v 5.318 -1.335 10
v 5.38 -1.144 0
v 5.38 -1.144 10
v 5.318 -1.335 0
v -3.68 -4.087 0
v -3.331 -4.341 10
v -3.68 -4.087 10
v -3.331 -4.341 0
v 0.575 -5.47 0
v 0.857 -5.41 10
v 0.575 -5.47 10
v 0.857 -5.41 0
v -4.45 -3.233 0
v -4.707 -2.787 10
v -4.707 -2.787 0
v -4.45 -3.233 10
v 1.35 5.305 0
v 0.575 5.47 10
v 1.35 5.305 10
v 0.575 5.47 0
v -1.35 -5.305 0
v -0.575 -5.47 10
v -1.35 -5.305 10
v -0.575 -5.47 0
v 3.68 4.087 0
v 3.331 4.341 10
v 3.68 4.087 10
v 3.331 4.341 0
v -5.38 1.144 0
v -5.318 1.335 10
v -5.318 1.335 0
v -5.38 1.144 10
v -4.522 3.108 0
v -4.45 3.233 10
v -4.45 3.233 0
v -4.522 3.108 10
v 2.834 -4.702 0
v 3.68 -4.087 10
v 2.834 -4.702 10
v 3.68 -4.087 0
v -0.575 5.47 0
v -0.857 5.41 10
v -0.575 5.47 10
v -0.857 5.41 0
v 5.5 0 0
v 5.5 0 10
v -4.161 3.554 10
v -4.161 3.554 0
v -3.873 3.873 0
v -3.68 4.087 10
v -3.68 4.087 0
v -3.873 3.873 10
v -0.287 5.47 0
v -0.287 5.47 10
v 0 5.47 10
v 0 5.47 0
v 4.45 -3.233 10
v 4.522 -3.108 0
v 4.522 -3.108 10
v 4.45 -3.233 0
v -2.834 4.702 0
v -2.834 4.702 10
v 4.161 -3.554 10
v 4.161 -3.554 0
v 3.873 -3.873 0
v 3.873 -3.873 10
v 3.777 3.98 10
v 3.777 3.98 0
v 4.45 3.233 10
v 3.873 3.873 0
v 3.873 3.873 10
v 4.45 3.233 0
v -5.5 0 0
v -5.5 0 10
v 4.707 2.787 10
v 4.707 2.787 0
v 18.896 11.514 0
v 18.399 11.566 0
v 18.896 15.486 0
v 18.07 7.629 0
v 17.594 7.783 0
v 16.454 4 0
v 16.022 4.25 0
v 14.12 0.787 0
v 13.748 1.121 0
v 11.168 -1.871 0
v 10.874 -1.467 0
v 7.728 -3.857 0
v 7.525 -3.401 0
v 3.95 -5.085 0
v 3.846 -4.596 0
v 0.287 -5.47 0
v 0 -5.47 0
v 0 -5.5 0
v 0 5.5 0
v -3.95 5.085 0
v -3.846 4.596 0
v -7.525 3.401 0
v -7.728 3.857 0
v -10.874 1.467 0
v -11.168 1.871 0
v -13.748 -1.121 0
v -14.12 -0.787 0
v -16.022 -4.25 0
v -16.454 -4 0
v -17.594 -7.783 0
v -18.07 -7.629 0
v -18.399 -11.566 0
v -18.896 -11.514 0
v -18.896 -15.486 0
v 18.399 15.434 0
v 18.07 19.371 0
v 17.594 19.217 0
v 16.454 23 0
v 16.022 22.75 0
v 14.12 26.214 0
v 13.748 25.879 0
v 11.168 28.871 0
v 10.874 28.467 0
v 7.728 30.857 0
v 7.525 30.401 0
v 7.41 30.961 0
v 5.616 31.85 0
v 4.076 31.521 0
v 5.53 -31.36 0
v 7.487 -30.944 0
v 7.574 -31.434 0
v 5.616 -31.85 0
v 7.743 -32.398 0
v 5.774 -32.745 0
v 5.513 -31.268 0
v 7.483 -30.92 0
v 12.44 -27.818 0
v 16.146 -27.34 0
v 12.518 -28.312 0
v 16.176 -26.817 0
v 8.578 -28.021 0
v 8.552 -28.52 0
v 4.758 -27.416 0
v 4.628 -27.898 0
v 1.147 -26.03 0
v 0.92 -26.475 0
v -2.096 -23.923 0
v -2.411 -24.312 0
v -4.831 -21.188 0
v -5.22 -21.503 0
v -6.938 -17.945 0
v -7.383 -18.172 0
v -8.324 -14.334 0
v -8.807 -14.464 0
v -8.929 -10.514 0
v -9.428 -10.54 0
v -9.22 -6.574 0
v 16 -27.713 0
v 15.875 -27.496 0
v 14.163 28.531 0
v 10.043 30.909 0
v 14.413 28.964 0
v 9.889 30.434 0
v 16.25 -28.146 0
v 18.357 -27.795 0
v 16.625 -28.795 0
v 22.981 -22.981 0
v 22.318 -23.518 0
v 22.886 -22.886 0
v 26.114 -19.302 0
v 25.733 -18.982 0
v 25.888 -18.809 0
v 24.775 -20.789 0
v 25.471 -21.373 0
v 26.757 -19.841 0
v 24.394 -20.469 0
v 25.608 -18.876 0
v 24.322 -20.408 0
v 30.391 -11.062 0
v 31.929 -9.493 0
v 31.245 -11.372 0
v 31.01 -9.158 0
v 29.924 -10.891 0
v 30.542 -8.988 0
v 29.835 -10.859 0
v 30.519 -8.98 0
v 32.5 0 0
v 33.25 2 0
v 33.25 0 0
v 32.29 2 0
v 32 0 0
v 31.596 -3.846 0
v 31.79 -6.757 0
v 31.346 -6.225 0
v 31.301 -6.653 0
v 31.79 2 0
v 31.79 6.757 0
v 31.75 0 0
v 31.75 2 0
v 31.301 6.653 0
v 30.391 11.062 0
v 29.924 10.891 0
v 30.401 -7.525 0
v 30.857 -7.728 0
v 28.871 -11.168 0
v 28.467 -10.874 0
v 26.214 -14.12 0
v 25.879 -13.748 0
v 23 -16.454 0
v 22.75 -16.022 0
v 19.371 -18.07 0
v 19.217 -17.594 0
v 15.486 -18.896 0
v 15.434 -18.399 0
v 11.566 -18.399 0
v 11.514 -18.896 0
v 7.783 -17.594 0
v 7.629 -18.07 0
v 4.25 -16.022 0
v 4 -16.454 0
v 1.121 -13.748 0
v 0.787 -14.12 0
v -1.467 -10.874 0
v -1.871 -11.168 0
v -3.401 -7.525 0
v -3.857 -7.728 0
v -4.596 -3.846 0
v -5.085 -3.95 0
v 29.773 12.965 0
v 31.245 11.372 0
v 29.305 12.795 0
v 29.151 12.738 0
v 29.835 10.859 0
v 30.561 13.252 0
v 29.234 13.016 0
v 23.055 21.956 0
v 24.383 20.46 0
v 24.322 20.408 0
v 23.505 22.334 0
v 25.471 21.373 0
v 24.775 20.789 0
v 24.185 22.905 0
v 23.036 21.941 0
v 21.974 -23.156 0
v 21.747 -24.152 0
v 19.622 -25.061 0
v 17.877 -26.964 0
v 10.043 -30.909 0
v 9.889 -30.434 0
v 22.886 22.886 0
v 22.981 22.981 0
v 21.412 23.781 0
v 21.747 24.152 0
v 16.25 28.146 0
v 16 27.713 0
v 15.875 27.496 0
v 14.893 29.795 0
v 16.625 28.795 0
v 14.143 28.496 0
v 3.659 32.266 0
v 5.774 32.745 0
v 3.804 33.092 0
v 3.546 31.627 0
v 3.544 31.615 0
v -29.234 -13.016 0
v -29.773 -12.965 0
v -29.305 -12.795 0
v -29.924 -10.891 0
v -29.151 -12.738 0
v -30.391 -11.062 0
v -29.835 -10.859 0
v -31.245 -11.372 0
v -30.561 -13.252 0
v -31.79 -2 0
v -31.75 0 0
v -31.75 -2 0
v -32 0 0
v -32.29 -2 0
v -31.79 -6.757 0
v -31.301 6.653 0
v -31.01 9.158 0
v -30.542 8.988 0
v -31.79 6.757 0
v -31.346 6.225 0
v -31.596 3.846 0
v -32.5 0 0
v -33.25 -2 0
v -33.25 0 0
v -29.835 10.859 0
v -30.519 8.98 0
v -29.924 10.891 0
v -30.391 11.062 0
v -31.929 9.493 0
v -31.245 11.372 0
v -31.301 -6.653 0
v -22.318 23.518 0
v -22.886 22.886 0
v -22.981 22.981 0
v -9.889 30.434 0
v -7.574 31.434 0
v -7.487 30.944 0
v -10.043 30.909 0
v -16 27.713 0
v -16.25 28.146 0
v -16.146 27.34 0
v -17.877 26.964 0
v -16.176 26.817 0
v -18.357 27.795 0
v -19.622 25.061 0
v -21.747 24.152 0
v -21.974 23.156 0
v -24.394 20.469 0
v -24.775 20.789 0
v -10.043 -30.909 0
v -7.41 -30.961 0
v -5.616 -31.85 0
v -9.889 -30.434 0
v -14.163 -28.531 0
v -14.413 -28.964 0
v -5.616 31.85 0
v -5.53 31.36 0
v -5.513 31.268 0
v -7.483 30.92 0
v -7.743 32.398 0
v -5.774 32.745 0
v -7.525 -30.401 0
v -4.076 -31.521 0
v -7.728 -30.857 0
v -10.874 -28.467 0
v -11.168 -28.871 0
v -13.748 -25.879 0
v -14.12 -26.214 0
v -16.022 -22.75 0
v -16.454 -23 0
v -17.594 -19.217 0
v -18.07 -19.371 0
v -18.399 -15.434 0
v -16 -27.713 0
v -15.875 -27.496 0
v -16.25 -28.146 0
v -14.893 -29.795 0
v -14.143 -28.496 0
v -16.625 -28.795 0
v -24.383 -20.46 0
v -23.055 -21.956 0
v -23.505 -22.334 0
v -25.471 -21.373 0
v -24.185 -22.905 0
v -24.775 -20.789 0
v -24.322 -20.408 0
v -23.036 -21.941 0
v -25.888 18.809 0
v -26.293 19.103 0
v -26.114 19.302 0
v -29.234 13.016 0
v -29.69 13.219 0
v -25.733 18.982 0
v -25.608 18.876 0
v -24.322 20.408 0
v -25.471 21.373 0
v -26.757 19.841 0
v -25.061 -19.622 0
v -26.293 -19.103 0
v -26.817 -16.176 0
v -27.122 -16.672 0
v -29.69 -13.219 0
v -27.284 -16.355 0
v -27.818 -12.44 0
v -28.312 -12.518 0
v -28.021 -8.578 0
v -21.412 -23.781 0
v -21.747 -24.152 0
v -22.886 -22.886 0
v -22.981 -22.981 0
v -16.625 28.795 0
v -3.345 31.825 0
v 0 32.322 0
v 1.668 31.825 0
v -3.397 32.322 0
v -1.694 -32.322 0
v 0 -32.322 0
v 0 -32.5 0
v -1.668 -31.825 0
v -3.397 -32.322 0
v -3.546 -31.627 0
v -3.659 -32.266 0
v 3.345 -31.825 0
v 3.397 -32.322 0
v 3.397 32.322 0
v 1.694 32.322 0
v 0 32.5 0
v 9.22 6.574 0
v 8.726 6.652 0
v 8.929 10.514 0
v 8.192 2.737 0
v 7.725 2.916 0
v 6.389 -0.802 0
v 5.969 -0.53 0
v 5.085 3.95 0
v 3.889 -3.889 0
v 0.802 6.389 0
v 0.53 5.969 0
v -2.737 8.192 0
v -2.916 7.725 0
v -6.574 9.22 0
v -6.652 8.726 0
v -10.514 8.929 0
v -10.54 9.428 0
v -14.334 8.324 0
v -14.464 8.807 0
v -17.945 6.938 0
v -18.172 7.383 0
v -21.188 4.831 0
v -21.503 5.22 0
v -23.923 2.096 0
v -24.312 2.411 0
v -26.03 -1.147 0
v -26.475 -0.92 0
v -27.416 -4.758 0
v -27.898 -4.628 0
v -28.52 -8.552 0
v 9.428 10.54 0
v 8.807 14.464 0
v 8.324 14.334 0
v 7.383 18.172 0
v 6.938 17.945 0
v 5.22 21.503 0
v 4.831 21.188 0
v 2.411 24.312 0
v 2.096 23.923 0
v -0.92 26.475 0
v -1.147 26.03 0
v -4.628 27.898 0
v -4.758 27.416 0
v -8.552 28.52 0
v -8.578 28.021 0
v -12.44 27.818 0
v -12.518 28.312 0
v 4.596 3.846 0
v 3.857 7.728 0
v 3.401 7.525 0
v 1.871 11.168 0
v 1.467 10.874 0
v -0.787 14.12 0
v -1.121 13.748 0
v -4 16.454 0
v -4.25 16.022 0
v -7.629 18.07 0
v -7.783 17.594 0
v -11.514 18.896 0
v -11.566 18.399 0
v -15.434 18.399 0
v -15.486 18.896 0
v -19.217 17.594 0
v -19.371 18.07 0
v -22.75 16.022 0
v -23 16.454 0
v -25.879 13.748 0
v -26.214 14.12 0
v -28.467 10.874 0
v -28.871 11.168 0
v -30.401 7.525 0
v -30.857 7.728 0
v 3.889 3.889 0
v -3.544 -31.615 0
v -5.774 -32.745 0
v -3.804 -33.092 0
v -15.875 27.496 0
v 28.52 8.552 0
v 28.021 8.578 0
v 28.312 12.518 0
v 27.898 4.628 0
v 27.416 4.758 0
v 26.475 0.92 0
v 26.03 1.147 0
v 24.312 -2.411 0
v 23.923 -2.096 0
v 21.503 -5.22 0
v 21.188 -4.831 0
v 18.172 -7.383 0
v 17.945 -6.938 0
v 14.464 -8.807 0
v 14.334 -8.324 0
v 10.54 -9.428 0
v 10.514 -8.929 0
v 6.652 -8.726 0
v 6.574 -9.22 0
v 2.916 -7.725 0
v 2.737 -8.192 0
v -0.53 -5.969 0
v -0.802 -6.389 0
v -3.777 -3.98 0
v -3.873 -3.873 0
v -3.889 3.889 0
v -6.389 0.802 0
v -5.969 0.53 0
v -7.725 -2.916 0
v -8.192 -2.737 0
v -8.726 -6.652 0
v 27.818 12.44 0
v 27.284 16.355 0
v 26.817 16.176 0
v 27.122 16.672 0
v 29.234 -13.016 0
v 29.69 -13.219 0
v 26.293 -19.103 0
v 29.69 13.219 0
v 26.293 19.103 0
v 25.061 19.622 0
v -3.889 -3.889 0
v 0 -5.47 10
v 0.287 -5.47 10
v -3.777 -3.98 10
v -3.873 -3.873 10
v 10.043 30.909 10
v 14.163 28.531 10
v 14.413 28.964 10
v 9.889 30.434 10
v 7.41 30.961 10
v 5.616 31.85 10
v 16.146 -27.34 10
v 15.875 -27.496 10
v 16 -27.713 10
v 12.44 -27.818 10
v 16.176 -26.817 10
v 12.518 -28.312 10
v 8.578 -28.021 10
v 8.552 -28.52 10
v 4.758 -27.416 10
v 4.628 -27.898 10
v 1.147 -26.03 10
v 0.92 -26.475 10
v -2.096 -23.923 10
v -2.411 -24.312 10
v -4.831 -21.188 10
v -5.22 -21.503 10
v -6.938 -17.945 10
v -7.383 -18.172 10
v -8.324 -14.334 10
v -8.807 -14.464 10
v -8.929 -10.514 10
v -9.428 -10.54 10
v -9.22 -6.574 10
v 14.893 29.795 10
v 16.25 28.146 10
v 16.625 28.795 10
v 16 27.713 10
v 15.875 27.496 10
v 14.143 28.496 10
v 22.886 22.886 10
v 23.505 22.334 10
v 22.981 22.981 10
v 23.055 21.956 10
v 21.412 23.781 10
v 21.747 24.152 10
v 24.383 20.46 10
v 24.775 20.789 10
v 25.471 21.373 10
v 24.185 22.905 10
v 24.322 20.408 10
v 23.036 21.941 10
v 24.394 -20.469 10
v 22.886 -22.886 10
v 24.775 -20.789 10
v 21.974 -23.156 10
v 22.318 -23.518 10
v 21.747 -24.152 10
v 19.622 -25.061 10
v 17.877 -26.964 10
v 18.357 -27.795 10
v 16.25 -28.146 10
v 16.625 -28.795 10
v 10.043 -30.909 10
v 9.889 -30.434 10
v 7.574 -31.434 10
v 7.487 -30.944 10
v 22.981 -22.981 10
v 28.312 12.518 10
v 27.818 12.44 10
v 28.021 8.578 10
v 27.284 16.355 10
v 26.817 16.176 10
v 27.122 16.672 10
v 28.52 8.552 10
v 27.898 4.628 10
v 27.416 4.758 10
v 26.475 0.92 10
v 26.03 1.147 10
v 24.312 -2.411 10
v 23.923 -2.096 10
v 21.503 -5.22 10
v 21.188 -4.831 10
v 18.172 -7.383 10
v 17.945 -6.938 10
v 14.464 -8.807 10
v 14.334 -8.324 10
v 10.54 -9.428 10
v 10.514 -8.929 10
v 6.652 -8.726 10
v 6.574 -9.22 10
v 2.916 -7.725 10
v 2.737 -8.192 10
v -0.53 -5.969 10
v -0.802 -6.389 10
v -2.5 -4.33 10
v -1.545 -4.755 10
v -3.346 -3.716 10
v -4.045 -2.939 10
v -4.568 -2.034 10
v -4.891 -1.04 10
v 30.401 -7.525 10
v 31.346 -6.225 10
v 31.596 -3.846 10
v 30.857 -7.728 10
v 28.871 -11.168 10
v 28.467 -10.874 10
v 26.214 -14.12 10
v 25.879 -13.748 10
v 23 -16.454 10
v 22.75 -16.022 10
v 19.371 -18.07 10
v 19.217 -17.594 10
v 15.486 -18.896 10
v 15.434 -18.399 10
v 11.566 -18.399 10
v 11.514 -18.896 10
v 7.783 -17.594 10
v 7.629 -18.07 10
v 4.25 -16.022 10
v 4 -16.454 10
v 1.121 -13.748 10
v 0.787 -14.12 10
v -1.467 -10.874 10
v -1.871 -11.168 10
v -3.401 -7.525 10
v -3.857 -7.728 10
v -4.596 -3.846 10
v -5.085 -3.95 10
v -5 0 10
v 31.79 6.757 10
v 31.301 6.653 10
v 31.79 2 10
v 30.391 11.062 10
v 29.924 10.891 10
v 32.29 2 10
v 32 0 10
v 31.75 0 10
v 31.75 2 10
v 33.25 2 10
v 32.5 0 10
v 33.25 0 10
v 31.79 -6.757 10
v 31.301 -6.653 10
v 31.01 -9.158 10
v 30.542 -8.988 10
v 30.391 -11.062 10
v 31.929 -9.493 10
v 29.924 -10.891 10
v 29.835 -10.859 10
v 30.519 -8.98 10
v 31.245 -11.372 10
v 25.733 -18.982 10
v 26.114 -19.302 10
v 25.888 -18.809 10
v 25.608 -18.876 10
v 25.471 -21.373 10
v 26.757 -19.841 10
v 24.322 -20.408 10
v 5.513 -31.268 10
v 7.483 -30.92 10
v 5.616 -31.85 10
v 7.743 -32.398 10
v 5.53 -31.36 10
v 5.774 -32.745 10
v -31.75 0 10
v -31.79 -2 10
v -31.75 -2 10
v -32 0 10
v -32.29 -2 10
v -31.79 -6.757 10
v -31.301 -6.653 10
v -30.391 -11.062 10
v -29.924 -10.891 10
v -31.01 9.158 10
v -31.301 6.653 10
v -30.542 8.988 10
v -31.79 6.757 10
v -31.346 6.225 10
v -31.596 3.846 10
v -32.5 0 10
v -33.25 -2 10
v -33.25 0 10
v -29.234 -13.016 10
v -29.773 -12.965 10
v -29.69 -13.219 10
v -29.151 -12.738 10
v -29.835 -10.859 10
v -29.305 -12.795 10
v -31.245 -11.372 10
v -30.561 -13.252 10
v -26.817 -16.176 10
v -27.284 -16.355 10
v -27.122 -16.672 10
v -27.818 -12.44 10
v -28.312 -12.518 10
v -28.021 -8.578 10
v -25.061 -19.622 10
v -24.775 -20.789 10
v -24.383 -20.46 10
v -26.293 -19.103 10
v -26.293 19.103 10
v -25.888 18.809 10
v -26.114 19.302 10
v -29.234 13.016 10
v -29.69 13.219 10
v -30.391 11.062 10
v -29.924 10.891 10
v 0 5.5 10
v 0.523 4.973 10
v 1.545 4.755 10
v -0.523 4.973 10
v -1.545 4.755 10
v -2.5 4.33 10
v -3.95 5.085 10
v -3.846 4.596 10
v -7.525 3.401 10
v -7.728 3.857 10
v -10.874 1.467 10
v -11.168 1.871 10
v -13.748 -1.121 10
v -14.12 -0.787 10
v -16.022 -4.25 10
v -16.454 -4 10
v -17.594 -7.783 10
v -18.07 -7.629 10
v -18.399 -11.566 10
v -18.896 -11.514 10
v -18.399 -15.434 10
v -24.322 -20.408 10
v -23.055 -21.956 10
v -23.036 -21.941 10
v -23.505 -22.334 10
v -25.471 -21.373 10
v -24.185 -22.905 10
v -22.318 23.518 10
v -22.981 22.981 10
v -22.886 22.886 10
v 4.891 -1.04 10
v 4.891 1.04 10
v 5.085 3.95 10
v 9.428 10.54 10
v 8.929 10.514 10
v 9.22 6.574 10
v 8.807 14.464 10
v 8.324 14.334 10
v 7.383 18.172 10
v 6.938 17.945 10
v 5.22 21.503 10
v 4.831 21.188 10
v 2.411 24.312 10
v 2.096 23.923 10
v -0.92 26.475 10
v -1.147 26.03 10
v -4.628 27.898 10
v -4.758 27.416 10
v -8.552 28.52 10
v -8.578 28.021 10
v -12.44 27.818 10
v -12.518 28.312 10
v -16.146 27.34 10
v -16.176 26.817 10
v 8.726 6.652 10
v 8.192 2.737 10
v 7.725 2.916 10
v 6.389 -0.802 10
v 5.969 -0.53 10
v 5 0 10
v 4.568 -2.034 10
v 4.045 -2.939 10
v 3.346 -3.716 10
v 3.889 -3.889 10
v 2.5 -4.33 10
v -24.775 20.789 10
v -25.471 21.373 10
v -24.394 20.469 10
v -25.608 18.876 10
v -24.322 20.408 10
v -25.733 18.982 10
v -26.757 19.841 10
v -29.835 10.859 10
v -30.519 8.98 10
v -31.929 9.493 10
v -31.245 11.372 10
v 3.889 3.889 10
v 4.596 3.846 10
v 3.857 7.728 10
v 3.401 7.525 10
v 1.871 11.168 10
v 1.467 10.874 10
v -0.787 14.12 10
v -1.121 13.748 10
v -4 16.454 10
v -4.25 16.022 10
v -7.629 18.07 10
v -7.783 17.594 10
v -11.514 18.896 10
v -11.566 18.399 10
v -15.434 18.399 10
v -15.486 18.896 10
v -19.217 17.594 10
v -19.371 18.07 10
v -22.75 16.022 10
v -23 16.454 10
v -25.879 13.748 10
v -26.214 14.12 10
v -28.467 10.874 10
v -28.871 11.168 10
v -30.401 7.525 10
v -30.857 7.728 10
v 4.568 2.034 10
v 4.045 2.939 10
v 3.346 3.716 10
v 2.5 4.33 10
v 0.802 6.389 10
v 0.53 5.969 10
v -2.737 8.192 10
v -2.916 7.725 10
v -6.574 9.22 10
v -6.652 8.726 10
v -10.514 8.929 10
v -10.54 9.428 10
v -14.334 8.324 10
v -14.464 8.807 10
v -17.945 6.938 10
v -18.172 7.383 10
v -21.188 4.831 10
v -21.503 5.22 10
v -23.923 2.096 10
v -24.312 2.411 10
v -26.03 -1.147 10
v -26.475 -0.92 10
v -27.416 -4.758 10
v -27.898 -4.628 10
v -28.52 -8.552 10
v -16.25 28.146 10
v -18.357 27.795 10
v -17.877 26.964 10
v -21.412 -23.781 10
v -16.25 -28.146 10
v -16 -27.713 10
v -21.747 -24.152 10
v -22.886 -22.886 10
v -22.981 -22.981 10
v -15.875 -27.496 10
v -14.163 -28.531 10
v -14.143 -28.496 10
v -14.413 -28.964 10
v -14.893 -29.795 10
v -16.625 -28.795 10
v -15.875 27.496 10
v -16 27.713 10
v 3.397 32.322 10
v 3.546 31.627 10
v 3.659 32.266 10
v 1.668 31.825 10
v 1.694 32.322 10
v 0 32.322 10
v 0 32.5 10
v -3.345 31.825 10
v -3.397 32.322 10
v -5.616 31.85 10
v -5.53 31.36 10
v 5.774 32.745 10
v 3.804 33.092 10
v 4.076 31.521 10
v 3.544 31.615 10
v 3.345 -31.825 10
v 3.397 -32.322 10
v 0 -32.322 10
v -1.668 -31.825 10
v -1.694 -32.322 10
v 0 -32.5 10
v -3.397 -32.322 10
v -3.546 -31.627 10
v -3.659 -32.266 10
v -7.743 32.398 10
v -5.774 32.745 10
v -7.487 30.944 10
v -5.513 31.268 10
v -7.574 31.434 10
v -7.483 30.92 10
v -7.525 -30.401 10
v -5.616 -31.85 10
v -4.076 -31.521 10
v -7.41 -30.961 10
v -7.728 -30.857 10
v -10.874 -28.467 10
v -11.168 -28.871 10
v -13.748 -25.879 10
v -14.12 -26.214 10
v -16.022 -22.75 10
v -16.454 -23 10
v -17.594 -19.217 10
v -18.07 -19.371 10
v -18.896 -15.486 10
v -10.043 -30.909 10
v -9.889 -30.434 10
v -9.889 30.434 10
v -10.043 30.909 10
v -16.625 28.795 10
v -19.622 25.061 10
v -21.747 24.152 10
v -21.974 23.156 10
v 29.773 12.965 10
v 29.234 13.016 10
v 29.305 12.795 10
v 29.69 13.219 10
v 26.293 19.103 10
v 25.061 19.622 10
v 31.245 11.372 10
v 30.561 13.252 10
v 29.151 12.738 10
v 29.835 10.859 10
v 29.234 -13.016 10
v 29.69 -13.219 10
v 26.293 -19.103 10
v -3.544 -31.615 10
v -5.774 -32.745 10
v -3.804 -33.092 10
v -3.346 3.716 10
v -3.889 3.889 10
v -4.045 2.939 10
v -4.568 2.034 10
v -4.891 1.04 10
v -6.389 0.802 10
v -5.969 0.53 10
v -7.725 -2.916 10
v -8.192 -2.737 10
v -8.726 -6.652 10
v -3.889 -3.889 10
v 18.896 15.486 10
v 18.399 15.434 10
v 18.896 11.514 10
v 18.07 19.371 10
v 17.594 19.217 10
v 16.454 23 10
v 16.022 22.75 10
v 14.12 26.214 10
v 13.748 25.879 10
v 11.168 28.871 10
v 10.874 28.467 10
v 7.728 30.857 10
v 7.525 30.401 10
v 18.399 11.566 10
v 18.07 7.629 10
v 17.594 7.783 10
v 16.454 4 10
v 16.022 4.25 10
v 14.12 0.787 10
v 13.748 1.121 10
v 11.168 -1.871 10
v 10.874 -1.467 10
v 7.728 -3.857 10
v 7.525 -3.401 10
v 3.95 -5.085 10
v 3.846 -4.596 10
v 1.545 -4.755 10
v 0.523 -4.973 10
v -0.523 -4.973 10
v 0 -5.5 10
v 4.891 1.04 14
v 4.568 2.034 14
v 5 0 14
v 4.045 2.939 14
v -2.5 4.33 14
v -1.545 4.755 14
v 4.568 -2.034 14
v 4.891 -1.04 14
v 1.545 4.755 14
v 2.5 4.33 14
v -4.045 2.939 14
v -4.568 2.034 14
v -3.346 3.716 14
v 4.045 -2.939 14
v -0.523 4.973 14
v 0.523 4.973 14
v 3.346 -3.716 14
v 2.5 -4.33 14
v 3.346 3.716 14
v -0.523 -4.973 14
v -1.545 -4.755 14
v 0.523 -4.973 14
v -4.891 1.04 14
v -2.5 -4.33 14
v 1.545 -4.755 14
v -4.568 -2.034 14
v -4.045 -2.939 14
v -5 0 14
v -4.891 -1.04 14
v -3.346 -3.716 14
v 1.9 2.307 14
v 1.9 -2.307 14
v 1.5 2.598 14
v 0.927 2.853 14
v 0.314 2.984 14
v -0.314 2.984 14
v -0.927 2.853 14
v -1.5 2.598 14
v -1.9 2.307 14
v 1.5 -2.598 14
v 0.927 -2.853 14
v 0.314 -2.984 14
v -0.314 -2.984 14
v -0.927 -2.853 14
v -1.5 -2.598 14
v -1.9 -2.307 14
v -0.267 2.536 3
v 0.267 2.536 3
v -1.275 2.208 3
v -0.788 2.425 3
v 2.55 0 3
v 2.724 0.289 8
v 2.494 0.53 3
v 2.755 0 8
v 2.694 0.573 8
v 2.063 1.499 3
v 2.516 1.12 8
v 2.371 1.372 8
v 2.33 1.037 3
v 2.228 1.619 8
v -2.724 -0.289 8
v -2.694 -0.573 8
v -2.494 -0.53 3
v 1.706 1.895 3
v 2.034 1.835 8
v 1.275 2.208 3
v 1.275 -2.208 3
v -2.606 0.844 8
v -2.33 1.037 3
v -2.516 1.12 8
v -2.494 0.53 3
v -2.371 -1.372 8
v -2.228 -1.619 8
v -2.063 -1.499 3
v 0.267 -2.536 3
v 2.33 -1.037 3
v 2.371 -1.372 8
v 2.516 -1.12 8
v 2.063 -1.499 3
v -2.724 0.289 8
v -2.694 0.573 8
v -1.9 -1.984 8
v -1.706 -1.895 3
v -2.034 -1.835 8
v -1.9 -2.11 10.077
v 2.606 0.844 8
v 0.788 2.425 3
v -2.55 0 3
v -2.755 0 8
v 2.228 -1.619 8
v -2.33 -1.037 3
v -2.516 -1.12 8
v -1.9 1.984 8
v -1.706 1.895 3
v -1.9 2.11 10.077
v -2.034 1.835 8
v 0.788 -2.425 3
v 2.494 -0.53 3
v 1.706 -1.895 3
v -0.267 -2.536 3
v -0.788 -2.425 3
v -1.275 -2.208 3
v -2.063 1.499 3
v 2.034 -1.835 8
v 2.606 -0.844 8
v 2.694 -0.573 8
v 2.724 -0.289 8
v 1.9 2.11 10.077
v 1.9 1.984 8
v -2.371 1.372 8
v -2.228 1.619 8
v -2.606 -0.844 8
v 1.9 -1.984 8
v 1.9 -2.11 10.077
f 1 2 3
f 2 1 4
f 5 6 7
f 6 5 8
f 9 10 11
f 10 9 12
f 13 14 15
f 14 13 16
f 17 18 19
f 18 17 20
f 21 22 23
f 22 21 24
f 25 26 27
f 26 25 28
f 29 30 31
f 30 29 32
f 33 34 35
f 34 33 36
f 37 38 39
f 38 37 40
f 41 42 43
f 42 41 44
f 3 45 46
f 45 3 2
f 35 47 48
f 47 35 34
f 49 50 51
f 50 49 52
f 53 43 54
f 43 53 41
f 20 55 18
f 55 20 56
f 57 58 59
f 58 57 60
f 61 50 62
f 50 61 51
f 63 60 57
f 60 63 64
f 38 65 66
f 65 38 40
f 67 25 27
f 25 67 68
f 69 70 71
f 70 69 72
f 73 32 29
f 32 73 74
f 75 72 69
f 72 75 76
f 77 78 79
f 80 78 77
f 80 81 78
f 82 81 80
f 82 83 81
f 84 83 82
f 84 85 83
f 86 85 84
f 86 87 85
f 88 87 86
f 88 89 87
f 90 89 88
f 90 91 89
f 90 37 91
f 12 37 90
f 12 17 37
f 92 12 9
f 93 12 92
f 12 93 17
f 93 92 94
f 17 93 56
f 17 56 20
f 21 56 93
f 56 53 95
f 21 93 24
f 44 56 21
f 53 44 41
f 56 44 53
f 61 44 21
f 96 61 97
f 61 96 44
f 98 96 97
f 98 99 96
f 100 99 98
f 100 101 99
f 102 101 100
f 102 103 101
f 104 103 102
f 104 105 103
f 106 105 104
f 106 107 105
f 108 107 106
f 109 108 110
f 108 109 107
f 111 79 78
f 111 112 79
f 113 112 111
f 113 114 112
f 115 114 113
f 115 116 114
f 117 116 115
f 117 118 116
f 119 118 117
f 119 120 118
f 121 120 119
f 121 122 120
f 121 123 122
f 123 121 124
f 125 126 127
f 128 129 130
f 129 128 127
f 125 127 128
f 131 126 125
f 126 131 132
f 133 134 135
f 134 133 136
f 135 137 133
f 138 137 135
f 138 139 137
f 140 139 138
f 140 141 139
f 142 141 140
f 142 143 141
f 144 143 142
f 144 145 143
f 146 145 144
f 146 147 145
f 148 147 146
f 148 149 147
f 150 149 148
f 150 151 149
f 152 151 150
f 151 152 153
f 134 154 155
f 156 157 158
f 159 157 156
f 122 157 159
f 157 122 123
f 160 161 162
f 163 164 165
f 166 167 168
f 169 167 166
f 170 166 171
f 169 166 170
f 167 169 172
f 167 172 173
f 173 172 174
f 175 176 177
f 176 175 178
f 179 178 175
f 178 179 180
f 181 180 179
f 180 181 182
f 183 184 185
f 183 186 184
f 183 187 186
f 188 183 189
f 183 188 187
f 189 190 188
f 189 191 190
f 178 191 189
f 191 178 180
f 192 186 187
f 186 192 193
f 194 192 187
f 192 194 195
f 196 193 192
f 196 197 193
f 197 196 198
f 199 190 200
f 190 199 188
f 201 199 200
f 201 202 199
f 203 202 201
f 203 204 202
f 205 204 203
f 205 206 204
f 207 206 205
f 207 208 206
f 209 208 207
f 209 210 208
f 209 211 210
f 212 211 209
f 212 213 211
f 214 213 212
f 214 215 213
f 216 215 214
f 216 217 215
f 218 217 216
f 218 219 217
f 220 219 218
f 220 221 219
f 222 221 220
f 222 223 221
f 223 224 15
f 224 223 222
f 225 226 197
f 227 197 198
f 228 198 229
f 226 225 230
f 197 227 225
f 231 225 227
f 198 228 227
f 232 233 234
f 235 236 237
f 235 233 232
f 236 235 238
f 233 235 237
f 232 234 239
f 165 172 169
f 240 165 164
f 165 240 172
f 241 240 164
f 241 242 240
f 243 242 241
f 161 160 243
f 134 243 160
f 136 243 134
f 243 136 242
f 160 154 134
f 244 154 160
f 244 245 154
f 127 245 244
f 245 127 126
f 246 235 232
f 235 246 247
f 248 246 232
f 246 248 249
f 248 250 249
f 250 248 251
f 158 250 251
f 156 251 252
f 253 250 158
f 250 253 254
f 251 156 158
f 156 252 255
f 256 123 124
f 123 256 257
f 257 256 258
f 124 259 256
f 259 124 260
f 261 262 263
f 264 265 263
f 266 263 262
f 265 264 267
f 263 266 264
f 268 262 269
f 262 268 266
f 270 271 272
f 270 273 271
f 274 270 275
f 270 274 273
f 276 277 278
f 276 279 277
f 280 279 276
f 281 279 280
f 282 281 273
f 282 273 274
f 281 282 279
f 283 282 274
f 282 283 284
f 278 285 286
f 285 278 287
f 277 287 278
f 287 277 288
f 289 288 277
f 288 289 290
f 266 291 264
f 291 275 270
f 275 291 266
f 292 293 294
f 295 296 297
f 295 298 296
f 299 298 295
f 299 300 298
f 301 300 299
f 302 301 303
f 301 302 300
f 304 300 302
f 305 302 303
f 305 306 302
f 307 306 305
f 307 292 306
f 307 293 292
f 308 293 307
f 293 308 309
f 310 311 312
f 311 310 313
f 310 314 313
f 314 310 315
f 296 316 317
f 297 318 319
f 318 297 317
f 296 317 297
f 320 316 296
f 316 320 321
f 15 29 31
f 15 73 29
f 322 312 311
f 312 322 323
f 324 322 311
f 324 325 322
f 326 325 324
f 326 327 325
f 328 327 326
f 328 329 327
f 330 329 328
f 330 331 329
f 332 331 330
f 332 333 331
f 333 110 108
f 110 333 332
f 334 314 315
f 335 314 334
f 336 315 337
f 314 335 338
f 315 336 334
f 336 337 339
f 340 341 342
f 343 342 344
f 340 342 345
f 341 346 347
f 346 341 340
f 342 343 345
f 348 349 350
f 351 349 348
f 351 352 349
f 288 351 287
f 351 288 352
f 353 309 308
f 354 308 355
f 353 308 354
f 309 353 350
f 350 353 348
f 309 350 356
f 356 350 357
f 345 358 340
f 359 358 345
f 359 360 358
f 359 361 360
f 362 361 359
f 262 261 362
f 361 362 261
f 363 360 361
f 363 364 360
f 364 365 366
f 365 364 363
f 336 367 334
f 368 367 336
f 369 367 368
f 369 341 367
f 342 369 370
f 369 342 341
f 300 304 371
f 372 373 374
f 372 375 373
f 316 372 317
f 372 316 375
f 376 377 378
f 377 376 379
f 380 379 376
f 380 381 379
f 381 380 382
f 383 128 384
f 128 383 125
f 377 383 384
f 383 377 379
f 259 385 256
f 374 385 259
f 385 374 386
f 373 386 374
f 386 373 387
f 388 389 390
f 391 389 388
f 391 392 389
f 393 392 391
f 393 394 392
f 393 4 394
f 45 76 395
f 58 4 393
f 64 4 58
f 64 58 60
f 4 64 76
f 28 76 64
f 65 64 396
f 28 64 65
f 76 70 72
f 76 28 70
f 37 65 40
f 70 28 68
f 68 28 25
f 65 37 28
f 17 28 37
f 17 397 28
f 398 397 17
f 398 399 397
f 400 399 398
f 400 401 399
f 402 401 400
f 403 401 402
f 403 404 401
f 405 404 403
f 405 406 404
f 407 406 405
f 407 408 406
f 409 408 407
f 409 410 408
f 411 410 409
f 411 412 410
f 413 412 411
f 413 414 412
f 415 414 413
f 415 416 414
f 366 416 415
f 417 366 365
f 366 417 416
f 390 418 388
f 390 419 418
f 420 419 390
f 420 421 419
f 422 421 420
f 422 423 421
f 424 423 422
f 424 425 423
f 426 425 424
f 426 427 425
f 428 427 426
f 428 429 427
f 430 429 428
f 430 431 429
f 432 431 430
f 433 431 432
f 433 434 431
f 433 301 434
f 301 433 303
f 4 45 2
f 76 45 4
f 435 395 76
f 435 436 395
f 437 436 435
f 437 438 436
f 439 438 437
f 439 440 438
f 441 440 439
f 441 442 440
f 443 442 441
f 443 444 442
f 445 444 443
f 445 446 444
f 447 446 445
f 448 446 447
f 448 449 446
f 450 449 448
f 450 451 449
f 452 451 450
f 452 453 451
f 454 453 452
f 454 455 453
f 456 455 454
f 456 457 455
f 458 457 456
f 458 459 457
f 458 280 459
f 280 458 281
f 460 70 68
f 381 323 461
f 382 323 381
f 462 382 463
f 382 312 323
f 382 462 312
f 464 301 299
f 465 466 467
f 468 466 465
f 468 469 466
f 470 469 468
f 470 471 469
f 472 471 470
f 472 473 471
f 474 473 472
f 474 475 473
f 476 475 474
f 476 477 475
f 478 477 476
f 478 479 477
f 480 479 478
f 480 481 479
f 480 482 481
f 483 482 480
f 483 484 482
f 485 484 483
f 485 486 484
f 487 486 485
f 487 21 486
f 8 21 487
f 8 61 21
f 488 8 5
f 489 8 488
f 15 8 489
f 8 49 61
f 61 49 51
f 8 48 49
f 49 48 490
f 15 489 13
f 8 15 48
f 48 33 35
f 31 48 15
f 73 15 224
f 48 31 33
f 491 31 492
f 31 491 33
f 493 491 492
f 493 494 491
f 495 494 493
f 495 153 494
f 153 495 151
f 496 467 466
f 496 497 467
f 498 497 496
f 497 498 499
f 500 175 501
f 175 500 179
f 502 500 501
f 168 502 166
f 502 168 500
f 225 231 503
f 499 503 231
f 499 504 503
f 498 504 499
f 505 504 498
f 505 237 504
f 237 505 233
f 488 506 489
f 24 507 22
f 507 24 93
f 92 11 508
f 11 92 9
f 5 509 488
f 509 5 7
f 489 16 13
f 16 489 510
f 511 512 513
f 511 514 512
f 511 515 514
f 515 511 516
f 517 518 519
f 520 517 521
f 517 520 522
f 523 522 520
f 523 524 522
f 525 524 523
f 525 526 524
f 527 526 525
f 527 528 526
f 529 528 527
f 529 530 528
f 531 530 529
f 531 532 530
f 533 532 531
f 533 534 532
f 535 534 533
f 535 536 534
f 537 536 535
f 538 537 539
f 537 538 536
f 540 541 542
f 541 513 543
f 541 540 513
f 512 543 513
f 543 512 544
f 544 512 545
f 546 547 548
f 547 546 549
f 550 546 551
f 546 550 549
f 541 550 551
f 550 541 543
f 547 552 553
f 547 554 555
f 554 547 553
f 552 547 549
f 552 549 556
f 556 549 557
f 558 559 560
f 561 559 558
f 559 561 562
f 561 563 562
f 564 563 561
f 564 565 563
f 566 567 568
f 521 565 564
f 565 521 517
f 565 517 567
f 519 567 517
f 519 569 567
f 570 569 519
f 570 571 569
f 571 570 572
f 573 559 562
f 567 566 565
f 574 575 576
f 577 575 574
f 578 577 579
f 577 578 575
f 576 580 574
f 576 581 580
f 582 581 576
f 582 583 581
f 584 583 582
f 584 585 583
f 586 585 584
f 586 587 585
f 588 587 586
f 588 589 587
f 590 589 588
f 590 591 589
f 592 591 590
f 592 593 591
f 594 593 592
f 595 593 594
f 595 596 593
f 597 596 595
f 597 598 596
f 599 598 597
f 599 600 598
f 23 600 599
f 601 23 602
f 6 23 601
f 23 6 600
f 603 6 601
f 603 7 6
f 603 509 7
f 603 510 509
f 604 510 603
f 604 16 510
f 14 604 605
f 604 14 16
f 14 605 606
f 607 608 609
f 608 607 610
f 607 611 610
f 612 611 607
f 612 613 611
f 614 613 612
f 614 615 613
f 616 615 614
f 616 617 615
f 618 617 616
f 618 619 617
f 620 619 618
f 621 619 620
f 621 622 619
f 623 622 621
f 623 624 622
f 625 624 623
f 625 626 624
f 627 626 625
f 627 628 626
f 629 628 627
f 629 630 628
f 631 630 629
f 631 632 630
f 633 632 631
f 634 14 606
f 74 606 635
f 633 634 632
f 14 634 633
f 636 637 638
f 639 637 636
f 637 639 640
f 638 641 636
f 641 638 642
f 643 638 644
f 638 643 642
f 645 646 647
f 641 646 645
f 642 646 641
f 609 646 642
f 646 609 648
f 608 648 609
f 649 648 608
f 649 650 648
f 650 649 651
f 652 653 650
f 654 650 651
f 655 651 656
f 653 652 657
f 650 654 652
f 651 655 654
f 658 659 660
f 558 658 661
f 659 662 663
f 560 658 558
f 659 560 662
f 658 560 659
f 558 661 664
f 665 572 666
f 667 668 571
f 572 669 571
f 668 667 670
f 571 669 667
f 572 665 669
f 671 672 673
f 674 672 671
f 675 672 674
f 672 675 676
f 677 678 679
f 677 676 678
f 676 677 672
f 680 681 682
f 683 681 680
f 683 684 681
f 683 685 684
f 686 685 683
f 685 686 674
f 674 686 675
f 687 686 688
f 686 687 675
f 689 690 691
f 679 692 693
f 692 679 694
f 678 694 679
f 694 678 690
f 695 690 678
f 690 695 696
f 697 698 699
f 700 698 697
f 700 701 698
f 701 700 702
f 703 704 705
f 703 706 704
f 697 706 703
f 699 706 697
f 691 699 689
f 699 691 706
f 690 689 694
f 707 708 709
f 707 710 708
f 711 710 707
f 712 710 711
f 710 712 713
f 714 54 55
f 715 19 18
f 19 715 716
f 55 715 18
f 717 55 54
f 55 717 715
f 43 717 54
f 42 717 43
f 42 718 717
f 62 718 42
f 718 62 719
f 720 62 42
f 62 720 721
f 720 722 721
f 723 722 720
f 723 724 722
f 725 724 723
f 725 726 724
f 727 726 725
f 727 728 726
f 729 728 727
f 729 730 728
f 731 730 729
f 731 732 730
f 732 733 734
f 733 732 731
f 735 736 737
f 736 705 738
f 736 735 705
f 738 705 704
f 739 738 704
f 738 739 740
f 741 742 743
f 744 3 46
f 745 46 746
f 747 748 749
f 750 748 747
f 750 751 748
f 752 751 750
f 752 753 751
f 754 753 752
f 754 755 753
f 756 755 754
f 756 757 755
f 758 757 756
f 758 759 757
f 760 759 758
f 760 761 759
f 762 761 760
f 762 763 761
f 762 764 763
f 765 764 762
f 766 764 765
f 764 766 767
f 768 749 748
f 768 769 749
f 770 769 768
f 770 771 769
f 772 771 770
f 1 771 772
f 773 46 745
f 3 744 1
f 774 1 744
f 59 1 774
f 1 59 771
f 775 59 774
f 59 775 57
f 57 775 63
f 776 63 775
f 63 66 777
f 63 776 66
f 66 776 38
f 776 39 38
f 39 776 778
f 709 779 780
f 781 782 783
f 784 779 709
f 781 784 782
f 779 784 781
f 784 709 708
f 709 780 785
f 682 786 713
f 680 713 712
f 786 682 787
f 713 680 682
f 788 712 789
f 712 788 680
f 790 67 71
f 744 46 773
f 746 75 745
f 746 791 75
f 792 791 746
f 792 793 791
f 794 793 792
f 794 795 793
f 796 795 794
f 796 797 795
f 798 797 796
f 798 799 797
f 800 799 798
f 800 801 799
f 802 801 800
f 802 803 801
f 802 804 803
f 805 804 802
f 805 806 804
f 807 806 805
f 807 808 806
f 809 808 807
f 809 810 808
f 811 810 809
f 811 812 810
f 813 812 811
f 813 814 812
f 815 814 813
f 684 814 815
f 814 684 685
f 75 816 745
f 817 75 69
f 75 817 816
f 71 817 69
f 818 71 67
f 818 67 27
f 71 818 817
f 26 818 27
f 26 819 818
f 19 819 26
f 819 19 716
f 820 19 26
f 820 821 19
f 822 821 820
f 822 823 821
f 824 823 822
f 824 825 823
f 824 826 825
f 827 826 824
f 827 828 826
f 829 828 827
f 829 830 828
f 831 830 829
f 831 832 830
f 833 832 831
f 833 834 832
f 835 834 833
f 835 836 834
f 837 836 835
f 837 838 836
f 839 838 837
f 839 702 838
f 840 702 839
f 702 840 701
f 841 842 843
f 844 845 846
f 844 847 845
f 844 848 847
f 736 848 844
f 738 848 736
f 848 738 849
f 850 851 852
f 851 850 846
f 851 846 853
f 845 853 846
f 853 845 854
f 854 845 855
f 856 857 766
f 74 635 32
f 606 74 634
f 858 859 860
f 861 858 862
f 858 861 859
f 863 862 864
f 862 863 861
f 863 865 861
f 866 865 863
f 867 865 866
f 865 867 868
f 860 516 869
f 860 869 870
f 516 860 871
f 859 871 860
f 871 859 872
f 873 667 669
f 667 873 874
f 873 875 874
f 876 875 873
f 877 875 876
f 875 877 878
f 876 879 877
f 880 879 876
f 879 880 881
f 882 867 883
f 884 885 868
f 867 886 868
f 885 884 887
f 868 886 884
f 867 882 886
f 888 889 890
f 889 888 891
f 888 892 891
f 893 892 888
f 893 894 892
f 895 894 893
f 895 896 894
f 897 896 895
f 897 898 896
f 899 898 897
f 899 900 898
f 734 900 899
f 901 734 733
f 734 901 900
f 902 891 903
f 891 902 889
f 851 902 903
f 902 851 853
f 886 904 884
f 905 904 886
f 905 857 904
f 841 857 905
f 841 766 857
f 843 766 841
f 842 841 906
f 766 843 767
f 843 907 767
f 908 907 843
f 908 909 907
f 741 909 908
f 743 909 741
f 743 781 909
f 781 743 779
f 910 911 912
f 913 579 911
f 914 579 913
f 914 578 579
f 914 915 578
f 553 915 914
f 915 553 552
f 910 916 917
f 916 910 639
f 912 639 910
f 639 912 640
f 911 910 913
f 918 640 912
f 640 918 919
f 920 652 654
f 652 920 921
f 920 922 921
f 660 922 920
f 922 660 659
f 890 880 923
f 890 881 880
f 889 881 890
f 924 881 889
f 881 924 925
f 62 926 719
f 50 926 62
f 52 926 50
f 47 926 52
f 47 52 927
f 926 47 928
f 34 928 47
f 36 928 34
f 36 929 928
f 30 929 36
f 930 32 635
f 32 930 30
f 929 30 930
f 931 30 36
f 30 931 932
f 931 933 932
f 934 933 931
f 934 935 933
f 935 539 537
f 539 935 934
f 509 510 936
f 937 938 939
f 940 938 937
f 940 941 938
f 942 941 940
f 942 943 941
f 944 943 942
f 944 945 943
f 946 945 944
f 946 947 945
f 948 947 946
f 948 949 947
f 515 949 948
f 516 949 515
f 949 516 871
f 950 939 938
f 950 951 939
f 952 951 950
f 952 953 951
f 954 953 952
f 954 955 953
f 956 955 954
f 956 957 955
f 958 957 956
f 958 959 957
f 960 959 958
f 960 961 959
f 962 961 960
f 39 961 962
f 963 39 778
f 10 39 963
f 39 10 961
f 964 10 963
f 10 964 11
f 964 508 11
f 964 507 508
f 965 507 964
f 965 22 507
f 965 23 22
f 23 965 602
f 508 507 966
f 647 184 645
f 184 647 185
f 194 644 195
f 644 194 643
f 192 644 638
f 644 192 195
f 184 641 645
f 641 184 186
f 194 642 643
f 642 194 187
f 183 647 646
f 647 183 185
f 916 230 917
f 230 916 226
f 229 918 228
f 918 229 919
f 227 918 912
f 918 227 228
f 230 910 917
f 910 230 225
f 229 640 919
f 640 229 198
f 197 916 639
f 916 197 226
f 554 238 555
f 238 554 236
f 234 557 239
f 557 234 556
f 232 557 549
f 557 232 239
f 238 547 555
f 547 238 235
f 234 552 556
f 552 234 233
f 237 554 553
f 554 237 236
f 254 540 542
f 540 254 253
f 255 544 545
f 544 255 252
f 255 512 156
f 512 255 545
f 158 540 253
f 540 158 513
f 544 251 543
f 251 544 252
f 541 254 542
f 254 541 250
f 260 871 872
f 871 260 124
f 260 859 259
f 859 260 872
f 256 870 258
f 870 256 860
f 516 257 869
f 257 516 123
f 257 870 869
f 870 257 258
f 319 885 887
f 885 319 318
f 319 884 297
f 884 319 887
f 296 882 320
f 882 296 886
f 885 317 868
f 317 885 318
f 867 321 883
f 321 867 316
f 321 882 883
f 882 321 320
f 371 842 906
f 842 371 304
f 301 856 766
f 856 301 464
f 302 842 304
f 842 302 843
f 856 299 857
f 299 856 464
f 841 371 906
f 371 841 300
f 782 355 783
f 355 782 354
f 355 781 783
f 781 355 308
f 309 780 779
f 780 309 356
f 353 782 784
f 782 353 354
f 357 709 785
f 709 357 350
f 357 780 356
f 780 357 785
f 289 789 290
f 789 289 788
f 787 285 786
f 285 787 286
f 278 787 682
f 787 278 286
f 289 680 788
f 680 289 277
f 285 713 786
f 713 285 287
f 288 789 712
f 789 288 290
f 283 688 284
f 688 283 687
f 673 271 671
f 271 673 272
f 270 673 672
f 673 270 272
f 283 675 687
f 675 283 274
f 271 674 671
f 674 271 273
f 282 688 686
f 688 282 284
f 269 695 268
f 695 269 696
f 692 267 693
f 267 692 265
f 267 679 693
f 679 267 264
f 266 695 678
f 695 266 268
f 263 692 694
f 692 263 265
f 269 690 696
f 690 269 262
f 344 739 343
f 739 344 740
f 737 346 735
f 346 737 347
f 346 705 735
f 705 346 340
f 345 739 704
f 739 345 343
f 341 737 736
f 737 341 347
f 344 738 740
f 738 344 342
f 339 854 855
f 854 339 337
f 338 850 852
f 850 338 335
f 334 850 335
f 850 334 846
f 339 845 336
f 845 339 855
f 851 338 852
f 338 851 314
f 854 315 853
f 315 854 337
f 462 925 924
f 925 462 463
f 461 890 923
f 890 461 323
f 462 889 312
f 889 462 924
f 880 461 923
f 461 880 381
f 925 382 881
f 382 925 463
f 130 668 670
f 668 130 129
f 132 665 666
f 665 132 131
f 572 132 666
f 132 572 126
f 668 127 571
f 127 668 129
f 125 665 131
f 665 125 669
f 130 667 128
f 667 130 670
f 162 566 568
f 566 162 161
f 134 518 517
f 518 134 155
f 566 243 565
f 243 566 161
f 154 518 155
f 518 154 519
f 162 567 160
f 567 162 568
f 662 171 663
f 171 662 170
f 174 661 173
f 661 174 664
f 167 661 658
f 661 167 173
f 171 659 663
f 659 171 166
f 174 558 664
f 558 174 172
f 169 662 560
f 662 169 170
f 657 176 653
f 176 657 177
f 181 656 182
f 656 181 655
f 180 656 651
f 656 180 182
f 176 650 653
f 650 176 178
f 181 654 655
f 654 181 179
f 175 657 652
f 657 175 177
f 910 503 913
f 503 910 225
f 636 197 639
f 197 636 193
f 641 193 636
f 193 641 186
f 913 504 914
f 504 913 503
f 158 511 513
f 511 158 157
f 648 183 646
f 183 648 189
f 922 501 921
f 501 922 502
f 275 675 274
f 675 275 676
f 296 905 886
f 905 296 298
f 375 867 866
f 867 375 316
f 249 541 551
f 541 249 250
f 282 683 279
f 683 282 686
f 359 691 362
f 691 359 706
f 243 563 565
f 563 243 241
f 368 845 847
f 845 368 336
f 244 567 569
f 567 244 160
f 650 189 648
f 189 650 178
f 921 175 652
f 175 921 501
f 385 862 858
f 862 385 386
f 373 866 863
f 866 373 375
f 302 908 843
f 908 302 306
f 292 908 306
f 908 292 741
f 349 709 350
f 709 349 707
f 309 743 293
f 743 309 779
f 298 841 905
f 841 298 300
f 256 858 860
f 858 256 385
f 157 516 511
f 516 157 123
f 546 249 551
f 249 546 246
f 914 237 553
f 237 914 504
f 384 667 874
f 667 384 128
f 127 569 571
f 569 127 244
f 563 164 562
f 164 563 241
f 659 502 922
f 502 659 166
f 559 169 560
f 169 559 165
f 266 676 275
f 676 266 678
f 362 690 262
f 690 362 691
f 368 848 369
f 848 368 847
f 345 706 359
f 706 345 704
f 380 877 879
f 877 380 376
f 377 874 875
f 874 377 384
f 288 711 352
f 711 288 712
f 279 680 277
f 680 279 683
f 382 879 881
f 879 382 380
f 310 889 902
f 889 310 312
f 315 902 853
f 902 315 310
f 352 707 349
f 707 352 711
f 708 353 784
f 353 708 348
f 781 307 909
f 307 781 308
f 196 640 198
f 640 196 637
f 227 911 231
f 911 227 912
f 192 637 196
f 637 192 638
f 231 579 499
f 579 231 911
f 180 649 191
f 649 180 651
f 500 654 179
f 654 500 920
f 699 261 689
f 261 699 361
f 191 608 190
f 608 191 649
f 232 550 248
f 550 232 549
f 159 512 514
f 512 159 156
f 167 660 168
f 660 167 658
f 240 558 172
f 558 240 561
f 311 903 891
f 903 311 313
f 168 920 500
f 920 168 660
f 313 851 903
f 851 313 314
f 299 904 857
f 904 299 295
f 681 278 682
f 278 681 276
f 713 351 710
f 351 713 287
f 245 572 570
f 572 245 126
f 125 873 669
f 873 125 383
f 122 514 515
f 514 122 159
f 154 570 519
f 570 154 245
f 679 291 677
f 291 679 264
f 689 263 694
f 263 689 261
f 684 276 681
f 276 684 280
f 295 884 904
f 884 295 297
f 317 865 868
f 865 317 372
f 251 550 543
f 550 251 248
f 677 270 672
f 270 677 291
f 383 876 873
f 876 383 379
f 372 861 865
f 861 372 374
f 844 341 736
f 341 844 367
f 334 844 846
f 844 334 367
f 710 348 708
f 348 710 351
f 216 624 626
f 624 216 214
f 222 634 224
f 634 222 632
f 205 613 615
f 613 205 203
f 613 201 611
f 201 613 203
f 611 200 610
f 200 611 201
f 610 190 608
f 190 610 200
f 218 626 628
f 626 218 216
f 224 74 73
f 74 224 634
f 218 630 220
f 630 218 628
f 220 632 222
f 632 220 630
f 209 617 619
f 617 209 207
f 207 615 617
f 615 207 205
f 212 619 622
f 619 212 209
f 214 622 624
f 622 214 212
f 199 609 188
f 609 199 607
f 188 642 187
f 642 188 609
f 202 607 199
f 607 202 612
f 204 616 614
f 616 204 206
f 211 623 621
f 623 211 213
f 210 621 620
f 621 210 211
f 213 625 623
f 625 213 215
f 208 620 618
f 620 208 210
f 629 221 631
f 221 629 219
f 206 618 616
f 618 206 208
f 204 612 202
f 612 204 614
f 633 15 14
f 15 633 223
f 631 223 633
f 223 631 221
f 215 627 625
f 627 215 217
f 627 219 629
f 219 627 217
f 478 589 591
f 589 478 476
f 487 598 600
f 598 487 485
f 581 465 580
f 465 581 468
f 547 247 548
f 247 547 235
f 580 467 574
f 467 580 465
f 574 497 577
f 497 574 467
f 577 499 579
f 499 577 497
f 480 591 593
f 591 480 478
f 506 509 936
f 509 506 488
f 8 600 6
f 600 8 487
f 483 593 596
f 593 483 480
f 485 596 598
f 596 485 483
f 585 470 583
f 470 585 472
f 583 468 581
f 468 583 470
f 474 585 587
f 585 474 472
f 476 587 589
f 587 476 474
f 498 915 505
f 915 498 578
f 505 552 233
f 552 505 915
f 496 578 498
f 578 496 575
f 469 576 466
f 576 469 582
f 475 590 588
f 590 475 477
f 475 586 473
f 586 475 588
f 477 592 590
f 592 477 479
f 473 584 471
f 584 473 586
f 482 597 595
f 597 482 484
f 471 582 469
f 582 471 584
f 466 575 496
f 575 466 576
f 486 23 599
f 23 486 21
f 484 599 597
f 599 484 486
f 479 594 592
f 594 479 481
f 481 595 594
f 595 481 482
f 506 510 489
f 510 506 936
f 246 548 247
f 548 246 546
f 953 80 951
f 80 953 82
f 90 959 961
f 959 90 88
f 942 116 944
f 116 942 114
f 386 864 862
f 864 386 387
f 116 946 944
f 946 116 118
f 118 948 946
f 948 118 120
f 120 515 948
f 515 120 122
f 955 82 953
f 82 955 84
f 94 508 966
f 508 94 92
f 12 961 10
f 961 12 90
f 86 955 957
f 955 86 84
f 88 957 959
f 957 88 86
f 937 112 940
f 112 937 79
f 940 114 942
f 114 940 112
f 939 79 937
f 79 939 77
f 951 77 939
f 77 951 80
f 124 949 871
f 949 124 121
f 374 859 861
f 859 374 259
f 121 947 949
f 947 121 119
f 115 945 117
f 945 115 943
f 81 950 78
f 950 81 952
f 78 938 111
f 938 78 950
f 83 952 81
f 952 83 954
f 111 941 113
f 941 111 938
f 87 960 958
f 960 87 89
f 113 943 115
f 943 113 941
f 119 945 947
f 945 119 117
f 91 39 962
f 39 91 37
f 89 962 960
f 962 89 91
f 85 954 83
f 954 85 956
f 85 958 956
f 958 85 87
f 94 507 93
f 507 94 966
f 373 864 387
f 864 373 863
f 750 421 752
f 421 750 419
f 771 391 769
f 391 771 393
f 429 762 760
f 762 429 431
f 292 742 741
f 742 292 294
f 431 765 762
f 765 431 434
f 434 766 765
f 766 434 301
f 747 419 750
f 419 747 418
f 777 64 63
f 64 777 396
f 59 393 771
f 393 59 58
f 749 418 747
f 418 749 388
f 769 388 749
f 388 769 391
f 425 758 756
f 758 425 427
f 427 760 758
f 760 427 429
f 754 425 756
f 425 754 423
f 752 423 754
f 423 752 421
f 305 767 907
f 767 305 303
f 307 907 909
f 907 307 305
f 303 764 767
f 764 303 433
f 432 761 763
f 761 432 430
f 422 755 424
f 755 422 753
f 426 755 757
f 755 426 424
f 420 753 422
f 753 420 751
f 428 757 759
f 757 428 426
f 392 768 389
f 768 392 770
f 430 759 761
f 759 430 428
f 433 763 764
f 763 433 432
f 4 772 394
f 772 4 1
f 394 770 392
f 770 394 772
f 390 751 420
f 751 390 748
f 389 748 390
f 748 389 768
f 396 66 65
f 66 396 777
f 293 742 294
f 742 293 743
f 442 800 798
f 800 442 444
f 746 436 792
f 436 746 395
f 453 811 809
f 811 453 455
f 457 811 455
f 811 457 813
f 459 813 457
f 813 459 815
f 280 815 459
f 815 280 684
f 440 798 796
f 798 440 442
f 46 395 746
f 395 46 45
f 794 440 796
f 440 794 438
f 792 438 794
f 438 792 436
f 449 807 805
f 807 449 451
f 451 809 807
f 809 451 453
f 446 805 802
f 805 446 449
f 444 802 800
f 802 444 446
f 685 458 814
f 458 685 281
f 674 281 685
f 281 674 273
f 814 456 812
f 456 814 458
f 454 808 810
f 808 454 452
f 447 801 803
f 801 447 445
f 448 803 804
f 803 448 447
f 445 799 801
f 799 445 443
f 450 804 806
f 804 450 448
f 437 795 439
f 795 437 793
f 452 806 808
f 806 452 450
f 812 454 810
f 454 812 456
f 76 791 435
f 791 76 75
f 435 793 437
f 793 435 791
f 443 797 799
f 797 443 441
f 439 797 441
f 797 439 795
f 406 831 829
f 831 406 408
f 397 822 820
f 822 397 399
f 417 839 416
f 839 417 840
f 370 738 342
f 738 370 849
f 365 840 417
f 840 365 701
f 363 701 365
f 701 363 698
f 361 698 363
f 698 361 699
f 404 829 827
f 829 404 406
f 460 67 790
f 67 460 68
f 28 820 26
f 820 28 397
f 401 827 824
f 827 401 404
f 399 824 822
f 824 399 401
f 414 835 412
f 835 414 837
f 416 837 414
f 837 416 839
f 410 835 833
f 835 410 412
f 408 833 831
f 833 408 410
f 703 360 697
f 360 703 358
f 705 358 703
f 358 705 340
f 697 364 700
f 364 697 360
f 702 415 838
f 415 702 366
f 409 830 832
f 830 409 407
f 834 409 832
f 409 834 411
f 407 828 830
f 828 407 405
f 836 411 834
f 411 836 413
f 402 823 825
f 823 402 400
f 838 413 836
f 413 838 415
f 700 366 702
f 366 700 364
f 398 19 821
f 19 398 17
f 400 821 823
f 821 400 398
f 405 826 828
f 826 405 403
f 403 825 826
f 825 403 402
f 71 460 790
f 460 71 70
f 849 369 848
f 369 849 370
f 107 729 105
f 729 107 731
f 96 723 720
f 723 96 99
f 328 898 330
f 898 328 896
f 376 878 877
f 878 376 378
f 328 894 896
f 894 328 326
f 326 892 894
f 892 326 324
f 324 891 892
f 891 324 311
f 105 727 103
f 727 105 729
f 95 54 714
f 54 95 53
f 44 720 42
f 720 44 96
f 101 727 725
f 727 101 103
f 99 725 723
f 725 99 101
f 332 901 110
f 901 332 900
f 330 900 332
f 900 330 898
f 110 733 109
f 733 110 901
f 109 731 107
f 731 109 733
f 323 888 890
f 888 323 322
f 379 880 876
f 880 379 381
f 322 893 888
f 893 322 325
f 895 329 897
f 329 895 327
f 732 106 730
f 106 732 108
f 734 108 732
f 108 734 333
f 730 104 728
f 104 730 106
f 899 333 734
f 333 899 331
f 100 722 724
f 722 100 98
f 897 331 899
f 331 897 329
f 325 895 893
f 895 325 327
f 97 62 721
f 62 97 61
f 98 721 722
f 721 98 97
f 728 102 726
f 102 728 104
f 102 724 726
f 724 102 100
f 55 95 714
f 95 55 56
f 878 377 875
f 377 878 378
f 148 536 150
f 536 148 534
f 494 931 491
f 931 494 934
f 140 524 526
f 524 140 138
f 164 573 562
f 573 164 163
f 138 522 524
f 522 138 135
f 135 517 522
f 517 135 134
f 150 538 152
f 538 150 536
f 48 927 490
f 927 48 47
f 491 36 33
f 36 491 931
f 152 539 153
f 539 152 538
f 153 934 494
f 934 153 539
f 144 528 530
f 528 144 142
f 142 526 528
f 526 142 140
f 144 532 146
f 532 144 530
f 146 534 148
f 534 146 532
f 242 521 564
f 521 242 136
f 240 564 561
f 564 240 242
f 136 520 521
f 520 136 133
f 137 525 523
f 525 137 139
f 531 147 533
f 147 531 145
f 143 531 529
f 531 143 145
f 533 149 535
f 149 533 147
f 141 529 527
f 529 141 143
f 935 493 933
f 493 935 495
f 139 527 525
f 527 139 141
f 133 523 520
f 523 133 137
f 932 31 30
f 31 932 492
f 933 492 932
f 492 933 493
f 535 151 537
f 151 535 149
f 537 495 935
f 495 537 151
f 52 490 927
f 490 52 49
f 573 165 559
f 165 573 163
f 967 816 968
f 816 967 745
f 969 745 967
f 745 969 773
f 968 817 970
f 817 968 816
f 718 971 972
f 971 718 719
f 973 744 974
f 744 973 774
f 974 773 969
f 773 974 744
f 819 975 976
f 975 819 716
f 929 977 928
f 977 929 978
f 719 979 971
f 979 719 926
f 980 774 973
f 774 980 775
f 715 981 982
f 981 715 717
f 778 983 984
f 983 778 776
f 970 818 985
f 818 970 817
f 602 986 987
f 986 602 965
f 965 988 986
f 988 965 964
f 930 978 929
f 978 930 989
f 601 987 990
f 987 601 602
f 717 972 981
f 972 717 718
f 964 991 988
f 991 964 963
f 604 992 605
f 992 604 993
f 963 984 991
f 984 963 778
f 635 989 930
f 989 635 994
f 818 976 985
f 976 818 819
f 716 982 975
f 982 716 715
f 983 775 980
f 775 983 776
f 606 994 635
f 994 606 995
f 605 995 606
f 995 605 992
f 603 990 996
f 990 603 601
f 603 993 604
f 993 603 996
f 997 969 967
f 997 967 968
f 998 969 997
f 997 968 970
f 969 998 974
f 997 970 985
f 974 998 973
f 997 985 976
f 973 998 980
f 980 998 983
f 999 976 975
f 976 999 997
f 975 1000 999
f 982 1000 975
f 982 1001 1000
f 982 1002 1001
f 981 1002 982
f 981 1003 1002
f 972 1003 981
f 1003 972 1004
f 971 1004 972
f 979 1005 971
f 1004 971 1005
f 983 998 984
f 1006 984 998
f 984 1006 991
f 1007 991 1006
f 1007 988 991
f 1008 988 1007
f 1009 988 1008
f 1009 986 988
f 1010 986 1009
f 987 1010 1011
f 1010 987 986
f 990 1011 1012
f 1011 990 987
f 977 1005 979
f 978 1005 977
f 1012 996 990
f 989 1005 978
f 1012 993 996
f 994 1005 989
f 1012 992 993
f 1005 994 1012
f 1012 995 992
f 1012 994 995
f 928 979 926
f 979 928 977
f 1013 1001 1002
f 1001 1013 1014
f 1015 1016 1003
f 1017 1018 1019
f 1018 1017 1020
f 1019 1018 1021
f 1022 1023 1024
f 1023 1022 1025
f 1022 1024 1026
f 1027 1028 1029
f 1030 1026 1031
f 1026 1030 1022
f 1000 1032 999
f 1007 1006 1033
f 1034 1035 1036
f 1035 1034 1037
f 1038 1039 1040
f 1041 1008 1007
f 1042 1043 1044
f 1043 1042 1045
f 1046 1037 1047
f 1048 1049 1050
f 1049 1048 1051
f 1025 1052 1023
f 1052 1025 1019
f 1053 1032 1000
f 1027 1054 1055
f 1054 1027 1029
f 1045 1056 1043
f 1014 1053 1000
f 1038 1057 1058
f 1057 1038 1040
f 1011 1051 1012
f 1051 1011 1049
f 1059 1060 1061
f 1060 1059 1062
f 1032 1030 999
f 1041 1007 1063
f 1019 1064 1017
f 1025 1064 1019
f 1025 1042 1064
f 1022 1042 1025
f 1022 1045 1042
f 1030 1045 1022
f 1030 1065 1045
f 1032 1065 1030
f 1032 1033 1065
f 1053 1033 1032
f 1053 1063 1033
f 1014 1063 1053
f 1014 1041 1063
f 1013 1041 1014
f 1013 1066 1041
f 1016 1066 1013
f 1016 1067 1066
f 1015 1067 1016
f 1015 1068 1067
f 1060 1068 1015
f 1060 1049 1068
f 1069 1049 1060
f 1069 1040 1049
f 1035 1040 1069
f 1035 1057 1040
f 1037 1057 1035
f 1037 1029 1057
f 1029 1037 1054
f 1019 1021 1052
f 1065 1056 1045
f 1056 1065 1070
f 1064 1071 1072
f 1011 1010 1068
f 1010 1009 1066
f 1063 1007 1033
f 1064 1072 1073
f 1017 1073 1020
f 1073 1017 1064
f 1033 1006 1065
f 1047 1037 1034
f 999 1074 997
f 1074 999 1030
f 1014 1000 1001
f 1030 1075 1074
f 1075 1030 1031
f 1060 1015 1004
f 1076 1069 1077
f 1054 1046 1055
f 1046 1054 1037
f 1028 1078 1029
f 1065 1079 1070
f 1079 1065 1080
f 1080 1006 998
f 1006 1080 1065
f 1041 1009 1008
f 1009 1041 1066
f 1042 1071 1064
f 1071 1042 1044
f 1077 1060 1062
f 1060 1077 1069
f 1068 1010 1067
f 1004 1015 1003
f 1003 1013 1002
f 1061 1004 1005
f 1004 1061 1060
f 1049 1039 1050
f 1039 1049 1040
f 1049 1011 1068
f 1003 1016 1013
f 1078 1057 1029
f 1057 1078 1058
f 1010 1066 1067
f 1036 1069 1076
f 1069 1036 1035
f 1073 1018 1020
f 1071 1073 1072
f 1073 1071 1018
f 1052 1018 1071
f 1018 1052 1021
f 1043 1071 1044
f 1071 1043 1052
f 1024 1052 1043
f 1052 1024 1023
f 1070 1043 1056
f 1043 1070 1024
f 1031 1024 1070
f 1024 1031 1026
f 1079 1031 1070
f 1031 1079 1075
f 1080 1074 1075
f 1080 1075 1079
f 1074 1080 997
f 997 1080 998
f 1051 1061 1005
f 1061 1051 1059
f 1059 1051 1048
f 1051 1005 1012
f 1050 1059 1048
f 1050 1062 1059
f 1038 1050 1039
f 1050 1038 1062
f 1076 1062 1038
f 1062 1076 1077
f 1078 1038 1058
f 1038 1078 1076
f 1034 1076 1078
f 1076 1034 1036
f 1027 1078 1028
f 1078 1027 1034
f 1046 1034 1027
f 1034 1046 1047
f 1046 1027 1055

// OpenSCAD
/*   	Parametric airless tire
		by Travis Howse <tjhowse@gmail.com>
		2012.   License, GPL v2 or later
**************************************************/
// https://www.thingiverse.com/thing:17514/files
dia_in = 1;
dia_out = 65;//65;
spoke_count = 8;
spoke_thickness = 0.5;
tread_thickness = 0.5;
hub_thickness = 5;
height = 10;
washer_height = 4;
$fn = 30;
spoke_dia = (dia_in/2) + hub_thickness + (dia_out/2) - tread_thickness+spoke_thickness;
grip_density = 0.05; // Set to 0 for no grip.
grip_height = 1.5;
grip_depth = 2;
pi = 3.14159;
zff = 0.001;

print_wheel = true;


//Set to 1 for a double spiral.
// Note: single-wall spokes probably won't work with double spirals, as the
// first layer of the upper spiral would bridge in a straight line, rather
// than a curve. Successive layers probably wouldn't recover.
double_spiral = 0;

module wheel()
{
	difference()
	{
		cylinder(r=dia_out/2,h=height);
		cylinder(r=(dia_out/2)-tread_thickness,h=height);	
	}

	difference()
	{
		cylinder(r=(dia_in/2)+hub_thickness,h=height);
		cylinder(r=dia_in/2,h=height);	
	}

	for (i = [0:spoke_count-1])
	{
		if (double_spiral)
		{
			rotate([0,0,i * (360/spoke_count)]) translate([(spoke_dia/2)-(dia_in/2)-hub_thickness,0,(height/2)+zff]) spoke();
			rotate([180,0,i * (360/spoke_count)]) translate([(spoke_dia/2)-(dia_in/2)-hub_thickness,0,-height/2]) spoke();			
		} else {
			rotate([0,0,i * (360/spoke_count)]) translate([(spoke_dia/2)-(dia_in/2)-hub_thickness,0,0]) spoke();
		}
	}
	
	if (grip_density != 0)
	{
		for (i = [0:(360*grip_density)])
		{
			rotate([0,0,i*(360/(360*grip_density))]) translate([dia_out/2-grip_height/2,0,0]) cube([grip_height,grip_depth,height]);
		}
	}
}

module spoke()
{
	intersection()
	{
		difference()
		{
			cylinder(r=spoke_dia/2,h=height);
			cylinder(r=(spoke_dia/2)-spoke_thickness,h=height);	
		}
		if (double_spiral)
		{
			translate([-spoke_dia/2,-spoke_dia,0]) cube([spoke_dia,spoke_dia,height/2]);
		} else {
			translate([-spoke_dia/2,-spoke_dia,0]) cube([spoke_dia,spoke_dia,height]);
		}
	}
}
if (print_wheel) {
    
    mirror([0,0,1]) {
        translate([0,0,-height]) {
            
            difference() {
                union() {
                    translate([0,0,-washer_height]) {
                        cylinder(h=height + washer_height, r=hub_thickness);
                    }
                    wheel();
                }
                
                //cylinder(h=10, r=4 , center=false);
                translate([0,0,-washer_height]) {
                    cylinder(h=7+washer_height, r1=3, r2=2.55 , center=false);
                }
                

            }

            translate([1.9,-3,0-washer_height])
                cube([2,6,6]);

            translate([-1.9-2,-3,0-washer_height])
                cube([2,6,6]);
            
        }
    }
}
